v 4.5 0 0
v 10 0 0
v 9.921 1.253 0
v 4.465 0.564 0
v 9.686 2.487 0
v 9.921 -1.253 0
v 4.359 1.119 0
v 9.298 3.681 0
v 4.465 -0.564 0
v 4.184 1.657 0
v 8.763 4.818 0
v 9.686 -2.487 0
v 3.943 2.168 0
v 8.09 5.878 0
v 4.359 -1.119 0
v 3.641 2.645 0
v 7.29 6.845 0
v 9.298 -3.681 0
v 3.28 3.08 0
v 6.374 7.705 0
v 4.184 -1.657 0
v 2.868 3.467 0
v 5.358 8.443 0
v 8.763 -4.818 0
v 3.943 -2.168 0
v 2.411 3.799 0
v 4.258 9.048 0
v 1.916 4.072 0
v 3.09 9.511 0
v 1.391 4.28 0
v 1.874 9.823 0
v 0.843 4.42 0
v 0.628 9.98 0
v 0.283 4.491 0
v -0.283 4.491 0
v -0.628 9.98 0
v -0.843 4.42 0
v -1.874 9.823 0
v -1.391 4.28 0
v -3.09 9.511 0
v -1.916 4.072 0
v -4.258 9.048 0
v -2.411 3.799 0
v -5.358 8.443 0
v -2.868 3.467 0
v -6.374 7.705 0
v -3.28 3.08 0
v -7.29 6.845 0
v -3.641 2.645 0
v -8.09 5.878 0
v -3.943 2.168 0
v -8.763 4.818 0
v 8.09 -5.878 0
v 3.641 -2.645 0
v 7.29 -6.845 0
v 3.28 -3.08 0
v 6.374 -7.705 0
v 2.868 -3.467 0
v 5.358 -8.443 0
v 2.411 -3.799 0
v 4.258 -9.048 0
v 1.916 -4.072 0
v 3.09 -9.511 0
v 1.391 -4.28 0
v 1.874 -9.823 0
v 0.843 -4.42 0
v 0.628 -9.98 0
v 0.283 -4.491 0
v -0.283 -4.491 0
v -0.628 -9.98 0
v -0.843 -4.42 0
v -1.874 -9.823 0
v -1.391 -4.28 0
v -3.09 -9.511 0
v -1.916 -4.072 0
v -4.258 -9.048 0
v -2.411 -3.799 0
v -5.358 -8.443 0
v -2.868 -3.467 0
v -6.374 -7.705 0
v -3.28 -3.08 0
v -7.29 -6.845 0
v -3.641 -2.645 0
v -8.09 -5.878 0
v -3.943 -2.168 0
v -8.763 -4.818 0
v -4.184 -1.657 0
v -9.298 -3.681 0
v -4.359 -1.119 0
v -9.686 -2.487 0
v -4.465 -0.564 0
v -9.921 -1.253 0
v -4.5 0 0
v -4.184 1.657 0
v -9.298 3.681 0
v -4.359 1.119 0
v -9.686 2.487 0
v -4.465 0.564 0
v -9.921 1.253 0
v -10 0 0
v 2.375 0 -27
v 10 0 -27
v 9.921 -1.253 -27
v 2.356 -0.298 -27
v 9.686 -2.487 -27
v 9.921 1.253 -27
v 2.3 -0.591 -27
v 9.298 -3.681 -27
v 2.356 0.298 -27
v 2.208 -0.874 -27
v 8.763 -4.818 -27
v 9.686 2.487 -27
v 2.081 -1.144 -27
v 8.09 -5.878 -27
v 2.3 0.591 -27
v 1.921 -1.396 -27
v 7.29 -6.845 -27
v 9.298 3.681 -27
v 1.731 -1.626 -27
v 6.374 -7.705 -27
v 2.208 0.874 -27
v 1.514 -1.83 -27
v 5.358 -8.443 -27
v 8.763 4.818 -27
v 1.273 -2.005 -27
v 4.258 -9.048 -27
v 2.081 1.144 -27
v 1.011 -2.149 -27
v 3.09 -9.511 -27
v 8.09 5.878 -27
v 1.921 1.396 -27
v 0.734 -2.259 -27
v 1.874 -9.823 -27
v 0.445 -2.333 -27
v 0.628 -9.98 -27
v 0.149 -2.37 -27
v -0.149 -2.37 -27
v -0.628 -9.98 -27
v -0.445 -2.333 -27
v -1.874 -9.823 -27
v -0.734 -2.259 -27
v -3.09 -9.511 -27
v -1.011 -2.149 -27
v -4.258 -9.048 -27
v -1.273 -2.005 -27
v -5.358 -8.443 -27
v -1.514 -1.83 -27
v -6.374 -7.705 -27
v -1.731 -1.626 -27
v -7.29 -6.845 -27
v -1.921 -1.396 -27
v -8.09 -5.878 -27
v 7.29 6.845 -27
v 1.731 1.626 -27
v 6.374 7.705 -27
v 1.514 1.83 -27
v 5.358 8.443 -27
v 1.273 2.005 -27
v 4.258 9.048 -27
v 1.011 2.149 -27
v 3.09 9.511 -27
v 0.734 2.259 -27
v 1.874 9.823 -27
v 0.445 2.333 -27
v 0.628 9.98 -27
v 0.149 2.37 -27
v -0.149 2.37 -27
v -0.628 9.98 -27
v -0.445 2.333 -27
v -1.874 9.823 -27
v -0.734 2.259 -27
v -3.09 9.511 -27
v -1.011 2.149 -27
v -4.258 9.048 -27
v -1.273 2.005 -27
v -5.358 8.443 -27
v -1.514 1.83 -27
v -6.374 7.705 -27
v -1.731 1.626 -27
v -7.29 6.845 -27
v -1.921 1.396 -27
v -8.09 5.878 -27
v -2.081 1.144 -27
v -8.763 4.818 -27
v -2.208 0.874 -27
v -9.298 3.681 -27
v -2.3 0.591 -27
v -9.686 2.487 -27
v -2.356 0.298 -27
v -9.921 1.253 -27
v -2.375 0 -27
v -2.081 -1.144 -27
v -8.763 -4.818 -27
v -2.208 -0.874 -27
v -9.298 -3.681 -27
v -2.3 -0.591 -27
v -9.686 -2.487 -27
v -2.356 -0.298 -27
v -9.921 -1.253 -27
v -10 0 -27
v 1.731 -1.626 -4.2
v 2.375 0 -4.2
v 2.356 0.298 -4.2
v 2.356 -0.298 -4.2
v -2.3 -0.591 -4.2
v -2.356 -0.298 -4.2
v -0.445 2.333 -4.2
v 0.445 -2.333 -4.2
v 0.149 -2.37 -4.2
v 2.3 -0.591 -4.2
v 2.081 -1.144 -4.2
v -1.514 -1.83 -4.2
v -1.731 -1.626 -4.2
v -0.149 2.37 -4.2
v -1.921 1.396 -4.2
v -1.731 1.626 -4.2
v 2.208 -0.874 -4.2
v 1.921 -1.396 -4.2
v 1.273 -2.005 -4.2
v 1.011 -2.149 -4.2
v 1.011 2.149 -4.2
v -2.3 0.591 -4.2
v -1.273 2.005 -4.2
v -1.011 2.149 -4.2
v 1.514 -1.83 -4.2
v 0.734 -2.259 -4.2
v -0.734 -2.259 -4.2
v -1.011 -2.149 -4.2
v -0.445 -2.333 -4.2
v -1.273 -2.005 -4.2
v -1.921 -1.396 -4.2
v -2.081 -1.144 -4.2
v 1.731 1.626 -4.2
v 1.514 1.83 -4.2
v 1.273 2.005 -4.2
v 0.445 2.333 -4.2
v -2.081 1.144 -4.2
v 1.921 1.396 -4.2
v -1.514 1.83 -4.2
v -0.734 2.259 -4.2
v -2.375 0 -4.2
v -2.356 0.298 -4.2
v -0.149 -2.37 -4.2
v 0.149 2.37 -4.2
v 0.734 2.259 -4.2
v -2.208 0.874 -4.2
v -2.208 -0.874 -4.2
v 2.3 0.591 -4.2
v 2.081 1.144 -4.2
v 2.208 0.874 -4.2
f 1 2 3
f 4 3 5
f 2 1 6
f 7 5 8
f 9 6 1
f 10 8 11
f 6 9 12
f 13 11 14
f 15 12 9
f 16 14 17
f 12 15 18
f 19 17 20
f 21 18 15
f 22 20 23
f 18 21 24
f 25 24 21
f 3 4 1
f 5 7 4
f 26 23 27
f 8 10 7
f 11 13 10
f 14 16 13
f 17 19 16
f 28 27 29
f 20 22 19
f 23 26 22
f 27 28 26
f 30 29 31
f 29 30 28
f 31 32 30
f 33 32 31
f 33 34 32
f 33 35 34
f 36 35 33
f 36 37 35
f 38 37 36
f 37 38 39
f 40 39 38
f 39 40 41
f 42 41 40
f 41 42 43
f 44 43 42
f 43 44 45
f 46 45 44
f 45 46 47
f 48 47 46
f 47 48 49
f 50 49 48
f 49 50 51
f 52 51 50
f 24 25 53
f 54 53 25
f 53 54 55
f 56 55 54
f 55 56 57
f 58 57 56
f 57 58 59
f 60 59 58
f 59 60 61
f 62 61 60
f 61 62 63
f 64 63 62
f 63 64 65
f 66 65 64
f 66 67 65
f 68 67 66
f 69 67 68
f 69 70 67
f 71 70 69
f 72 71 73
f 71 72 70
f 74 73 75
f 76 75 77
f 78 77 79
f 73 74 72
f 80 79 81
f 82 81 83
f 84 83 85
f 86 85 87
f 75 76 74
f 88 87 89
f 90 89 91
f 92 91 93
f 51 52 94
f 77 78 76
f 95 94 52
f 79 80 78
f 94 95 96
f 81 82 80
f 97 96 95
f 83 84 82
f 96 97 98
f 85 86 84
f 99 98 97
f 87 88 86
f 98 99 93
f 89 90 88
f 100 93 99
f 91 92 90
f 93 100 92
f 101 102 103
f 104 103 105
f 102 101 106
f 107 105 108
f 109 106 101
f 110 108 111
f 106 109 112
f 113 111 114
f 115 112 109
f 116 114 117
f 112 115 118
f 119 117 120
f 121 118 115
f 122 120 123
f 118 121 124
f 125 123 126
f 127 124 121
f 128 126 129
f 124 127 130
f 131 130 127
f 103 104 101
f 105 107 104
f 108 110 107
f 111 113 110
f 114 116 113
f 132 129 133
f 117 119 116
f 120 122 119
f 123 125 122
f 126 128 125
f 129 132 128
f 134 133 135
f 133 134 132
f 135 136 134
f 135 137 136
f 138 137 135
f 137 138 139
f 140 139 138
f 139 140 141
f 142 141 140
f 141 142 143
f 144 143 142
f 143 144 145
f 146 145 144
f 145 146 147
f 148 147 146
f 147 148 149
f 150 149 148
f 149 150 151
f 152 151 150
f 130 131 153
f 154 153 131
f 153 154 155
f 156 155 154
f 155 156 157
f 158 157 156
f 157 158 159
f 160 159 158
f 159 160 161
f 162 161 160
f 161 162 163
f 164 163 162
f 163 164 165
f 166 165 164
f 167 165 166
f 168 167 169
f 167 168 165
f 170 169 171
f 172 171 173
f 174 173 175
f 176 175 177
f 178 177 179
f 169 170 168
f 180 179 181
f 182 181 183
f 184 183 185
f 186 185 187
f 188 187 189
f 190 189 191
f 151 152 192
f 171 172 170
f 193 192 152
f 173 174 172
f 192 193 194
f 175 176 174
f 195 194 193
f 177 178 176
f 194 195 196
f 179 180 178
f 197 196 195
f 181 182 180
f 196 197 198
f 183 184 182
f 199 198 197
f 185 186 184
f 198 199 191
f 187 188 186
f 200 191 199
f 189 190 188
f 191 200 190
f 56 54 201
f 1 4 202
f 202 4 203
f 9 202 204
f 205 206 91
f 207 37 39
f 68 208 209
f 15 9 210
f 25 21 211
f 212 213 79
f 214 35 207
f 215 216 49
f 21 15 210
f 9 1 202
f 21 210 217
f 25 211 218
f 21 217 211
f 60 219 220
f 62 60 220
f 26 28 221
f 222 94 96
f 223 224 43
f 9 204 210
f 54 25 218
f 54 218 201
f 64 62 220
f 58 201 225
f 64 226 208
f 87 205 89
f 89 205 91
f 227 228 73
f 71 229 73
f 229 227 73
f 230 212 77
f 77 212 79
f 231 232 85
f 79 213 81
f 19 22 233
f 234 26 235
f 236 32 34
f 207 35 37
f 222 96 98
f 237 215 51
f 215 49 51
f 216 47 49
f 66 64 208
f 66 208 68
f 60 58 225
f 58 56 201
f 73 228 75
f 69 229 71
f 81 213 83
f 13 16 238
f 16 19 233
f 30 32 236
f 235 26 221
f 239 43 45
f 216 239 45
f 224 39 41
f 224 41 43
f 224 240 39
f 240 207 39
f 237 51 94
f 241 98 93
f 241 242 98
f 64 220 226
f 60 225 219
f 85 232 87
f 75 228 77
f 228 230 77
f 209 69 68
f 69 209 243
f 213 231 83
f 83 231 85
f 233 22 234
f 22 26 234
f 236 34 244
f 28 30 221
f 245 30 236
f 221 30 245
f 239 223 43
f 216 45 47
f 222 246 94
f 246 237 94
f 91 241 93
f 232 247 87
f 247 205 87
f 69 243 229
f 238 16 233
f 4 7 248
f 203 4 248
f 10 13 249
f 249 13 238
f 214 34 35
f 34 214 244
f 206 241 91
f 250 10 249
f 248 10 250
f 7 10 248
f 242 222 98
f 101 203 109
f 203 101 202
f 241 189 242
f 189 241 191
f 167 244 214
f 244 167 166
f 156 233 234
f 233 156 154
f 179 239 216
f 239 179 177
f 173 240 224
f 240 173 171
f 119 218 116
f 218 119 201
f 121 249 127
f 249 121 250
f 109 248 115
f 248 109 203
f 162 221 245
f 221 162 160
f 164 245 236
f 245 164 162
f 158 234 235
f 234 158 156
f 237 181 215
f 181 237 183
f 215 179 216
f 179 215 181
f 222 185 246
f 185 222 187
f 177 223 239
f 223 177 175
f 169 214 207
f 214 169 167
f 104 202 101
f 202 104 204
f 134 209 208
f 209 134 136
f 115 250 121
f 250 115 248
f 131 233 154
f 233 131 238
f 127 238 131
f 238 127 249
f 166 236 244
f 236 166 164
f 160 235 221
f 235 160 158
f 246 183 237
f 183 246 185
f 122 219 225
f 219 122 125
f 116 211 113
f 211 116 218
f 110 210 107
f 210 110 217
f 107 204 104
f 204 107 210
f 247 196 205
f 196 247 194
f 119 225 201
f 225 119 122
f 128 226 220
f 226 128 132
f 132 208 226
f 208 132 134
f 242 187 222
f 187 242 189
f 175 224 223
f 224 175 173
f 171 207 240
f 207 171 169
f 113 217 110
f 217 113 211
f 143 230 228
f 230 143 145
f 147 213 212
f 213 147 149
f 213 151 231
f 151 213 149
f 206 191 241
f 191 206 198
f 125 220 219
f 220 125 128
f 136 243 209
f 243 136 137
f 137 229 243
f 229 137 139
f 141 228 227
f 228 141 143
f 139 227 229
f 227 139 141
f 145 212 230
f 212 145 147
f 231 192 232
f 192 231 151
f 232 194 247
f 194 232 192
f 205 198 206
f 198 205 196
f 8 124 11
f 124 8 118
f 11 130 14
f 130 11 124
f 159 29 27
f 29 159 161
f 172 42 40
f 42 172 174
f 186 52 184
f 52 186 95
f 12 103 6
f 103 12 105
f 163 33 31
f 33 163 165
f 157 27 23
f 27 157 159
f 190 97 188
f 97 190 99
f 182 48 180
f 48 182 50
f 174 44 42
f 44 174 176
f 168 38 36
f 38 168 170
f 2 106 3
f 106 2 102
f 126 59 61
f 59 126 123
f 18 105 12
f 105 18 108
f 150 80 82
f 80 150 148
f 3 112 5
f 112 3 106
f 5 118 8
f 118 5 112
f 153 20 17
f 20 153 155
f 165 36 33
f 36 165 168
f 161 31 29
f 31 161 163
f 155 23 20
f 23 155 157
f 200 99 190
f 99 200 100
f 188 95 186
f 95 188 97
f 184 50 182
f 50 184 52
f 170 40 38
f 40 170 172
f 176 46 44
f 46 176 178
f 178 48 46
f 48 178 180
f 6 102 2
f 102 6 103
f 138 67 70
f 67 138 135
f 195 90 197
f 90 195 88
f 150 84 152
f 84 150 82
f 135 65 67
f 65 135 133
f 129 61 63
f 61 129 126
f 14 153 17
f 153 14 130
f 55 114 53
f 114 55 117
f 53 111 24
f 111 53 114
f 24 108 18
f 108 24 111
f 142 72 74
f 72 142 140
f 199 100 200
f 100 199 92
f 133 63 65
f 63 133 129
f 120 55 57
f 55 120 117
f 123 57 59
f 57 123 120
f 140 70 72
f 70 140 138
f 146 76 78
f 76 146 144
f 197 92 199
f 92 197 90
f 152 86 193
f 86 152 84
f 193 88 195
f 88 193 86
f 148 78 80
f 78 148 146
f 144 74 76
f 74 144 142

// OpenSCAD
$fn = 50;


difference() {
	union() {
		translate(v = [0, 0, -27.0000000000]) {
			cylinder(h = 27, r = 10.0000000000);
		}
		cylinder(h = 0, r = 19.0000000000);
	}
	union() {
		translate(v = [0, 0, 0]) {
			rotate(a = [0, 0, 0]) {
				difference() {
					union() {
						#translate(v = [0, 0, -27.0000000000]) {
							cylinder(h = 27, r = 2.2500000000);
						}
						#translate(v = [0, 0, -4.2000000000]) {
							cylinder(h = 4.2000000000, r1 = 2.3750000000, r2 = 4.5000000000);
						}
						#translate(v = [0, 0, -27.0000000000]) {
							cylinder(h = 27, r = 2.3750000000);
						}
						#translate(v = [0, 0, -27.0000000000]) {
							cylinder(h = 27, r = 2.2500000000);
						}
					}
					union();
				}
			}
		}
	}
}
